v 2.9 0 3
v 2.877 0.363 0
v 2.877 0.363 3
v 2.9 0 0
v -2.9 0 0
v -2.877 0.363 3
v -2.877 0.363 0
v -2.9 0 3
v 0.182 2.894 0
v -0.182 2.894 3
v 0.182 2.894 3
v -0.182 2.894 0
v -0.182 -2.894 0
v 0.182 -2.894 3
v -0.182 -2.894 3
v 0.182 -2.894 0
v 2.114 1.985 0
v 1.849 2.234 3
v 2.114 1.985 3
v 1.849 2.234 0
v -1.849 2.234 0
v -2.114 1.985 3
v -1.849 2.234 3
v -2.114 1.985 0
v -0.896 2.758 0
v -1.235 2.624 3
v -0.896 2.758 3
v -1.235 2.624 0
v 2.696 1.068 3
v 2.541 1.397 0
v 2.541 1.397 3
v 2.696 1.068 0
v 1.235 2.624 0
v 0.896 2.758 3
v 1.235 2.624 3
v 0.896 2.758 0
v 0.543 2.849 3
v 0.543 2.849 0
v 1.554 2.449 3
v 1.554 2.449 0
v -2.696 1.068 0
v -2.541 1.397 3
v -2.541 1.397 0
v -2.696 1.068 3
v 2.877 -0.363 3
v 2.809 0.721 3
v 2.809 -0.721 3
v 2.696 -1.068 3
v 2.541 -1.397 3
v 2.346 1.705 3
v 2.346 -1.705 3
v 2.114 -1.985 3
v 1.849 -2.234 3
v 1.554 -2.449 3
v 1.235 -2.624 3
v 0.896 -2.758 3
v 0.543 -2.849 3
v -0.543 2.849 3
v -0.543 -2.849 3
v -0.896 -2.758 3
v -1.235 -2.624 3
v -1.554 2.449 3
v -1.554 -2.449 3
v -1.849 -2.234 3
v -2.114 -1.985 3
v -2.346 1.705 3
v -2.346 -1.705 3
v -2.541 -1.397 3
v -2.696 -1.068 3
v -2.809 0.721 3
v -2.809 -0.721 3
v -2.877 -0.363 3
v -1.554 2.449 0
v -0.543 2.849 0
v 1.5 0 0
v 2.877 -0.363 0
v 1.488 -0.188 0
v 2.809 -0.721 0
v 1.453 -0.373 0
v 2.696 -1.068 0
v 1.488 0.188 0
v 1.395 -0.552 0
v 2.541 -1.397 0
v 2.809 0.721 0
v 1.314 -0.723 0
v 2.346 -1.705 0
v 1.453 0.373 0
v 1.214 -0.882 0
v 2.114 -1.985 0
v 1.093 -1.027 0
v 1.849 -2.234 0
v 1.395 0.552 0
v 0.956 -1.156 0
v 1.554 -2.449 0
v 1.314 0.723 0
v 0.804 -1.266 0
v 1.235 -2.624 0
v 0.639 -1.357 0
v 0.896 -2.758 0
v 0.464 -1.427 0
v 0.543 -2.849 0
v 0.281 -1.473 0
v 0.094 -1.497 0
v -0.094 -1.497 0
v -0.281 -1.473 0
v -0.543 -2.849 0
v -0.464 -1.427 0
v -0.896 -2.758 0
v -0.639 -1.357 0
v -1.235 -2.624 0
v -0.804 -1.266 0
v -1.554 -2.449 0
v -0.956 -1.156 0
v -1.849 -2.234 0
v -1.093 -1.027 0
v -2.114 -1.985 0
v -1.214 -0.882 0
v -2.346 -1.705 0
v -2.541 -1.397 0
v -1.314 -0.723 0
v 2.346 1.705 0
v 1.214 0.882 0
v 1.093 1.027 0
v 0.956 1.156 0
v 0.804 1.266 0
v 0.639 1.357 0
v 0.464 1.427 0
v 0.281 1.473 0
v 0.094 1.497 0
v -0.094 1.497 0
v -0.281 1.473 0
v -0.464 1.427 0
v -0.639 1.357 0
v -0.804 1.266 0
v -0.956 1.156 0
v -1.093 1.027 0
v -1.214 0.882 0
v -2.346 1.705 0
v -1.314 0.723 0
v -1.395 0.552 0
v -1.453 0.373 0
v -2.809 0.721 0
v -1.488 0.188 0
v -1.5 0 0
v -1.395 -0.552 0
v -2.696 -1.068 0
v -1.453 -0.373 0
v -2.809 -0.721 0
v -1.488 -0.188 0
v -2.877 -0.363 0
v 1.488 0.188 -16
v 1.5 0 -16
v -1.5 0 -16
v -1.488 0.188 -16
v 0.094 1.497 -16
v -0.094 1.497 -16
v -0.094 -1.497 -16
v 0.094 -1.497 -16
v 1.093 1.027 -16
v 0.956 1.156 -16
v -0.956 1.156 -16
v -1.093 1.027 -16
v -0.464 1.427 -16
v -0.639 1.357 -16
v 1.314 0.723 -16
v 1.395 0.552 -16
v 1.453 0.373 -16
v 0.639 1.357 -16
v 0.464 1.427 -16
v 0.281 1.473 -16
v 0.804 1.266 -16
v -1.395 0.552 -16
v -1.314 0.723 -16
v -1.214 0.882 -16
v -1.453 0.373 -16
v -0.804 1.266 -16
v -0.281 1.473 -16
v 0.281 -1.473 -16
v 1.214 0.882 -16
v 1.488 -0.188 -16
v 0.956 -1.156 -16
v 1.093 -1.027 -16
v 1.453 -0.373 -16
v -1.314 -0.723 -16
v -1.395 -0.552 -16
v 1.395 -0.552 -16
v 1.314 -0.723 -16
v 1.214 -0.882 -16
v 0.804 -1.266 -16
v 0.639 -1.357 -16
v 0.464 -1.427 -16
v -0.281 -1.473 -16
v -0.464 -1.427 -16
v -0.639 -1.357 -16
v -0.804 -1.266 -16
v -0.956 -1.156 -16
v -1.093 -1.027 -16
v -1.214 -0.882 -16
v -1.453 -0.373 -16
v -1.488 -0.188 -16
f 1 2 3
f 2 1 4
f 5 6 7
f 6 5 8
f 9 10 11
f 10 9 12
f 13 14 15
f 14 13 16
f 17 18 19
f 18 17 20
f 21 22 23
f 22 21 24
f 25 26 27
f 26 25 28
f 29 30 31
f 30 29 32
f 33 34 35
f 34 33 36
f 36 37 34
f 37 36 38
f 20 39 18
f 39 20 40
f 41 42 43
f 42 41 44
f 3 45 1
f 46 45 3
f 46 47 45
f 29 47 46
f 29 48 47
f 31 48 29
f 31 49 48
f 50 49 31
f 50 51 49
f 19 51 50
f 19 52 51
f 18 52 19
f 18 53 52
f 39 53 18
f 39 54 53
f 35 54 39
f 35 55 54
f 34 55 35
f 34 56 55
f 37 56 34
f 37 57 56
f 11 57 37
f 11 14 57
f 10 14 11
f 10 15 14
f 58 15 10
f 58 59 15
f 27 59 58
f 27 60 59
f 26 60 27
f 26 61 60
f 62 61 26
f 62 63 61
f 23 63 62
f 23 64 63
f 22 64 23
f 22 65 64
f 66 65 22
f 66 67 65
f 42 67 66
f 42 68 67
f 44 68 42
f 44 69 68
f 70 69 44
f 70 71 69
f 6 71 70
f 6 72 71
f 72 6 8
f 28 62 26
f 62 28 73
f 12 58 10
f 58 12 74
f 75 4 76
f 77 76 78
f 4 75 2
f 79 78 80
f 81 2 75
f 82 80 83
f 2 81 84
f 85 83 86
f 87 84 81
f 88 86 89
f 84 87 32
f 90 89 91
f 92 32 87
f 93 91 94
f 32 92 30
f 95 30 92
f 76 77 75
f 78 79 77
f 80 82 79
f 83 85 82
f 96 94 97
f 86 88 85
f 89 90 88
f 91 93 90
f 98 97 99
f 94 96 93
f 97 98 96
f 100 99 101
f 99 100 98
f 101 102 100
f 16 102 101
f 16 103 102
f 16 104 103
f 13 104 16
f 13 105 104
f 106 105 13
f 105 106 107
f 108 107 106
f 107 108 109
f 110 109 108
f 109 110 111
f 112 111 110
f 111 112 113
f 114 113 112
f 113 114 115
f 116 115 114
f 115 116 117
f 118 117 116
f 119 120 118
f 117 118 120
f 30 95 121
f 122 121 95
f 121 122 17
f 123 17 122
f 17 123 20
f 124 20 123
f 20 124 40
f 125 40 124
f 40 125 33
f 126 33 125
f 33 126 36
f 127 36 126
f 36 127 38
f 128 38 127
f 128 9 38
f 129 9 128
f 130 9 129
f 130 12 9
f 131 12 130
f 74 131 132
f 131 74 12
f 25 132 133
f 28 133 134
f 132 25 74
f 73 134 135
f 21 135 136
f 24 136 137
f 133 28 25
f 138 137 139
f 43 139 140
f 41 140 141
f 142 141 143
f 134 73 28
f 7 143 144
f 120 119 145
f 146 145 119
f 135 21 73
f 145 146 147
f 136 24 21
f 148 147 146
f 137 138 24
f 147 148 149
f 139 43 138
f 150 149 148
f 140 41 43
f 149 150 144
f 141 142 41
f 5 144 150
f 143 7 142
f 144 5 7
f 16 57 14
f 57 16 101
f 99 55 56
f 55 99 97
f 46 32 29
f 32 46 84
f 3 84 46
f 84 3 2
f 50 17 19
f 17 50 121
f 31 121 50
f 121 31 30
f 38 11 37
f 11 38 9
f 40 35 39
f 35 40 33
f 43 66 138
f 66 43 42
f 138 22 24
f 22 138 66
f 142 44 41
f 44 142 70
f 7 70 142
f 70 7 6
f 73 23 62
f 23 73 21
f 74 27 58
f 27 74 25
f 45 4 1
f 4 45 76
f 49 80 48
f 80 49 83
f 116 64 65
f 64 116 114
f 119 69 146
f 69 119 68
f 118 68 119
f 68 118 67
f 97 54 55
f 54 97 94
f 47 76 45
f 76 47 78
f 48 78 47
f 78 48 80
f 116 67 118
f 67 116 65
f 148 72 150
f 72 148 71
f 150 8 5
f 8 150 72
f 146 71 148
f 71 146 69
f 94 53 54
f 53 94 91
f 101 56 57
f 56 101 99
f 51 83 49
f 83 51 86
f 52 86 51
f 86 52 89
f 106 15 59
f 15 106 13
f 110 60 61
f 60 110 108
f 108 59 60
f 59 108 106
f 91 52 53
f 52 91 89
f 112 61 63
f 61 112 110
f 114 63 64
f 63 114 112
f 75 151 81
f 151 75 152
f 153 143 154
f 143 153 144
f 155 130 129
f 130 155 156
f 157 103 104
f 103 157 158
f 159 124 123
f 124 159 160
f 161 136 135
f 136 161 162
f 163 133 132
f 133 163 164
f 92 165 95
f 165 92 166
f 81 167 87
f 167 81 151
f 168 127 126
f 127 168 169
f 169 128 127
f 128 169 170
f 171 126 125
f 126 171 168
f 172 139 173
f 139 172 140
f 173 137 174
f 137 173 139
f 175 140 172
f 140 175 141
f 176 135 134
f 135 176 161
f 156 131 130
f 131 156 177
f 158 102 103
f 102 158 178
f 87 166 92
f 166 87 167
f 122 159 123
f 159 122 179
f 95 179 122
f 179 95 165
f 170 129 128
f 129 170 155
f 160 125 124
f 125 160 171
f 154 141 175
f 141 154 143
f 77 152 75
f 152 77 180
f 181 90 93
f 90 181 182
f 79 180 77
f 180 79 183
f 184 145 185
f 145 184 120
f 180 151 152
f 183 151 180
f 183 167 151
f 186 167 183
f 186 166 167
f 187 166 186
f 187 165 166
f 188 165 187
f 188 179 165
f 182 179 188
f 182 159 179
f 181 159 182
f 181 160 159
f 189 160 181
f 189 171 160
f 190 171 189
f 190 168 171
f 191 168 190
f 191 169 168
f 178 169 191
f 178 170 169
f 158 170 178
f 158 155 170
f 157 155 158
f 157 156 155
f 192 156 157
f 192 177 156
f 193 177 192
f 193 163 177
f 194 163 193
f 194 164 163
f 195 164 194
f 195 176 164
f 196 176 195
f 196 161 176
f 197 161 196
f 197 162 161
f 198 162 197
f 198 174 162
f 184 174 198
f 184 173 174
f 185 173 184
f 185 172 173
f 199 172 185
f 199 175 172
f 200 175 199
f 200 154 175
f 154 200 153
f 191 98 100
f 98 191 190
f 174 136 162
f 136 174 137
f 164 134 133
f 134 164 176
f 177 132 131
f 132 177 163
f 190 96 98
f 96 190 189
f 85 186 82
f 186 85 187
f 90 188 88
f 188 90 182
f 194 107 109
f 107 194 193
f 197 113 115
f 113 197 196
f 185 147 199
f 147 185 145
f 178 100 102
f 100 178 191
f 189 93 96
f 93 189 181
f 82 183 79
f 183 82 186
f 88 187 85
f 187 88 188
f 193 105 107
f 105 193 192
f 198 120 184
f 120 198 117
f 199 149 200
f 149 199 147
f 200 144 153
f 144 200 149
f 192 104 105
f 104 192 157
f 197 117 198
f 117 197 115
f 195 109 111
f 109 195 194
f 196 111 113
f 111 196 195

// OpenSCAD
$fn = 50;


difference() {
	union() {
		translate(v = [0, 0, 0]) {
			rotate(a = [0, 0, 0]) {
				cylinder(h = 3, r = 2.9000000000);
			}
		}
		translate(v = [0, 0, -16]) {
			rotate(a = [0, 0, 0]) {
				cylinder(h = 16, r = 1.5000000000);
			}
		}
	}
	union();
}
